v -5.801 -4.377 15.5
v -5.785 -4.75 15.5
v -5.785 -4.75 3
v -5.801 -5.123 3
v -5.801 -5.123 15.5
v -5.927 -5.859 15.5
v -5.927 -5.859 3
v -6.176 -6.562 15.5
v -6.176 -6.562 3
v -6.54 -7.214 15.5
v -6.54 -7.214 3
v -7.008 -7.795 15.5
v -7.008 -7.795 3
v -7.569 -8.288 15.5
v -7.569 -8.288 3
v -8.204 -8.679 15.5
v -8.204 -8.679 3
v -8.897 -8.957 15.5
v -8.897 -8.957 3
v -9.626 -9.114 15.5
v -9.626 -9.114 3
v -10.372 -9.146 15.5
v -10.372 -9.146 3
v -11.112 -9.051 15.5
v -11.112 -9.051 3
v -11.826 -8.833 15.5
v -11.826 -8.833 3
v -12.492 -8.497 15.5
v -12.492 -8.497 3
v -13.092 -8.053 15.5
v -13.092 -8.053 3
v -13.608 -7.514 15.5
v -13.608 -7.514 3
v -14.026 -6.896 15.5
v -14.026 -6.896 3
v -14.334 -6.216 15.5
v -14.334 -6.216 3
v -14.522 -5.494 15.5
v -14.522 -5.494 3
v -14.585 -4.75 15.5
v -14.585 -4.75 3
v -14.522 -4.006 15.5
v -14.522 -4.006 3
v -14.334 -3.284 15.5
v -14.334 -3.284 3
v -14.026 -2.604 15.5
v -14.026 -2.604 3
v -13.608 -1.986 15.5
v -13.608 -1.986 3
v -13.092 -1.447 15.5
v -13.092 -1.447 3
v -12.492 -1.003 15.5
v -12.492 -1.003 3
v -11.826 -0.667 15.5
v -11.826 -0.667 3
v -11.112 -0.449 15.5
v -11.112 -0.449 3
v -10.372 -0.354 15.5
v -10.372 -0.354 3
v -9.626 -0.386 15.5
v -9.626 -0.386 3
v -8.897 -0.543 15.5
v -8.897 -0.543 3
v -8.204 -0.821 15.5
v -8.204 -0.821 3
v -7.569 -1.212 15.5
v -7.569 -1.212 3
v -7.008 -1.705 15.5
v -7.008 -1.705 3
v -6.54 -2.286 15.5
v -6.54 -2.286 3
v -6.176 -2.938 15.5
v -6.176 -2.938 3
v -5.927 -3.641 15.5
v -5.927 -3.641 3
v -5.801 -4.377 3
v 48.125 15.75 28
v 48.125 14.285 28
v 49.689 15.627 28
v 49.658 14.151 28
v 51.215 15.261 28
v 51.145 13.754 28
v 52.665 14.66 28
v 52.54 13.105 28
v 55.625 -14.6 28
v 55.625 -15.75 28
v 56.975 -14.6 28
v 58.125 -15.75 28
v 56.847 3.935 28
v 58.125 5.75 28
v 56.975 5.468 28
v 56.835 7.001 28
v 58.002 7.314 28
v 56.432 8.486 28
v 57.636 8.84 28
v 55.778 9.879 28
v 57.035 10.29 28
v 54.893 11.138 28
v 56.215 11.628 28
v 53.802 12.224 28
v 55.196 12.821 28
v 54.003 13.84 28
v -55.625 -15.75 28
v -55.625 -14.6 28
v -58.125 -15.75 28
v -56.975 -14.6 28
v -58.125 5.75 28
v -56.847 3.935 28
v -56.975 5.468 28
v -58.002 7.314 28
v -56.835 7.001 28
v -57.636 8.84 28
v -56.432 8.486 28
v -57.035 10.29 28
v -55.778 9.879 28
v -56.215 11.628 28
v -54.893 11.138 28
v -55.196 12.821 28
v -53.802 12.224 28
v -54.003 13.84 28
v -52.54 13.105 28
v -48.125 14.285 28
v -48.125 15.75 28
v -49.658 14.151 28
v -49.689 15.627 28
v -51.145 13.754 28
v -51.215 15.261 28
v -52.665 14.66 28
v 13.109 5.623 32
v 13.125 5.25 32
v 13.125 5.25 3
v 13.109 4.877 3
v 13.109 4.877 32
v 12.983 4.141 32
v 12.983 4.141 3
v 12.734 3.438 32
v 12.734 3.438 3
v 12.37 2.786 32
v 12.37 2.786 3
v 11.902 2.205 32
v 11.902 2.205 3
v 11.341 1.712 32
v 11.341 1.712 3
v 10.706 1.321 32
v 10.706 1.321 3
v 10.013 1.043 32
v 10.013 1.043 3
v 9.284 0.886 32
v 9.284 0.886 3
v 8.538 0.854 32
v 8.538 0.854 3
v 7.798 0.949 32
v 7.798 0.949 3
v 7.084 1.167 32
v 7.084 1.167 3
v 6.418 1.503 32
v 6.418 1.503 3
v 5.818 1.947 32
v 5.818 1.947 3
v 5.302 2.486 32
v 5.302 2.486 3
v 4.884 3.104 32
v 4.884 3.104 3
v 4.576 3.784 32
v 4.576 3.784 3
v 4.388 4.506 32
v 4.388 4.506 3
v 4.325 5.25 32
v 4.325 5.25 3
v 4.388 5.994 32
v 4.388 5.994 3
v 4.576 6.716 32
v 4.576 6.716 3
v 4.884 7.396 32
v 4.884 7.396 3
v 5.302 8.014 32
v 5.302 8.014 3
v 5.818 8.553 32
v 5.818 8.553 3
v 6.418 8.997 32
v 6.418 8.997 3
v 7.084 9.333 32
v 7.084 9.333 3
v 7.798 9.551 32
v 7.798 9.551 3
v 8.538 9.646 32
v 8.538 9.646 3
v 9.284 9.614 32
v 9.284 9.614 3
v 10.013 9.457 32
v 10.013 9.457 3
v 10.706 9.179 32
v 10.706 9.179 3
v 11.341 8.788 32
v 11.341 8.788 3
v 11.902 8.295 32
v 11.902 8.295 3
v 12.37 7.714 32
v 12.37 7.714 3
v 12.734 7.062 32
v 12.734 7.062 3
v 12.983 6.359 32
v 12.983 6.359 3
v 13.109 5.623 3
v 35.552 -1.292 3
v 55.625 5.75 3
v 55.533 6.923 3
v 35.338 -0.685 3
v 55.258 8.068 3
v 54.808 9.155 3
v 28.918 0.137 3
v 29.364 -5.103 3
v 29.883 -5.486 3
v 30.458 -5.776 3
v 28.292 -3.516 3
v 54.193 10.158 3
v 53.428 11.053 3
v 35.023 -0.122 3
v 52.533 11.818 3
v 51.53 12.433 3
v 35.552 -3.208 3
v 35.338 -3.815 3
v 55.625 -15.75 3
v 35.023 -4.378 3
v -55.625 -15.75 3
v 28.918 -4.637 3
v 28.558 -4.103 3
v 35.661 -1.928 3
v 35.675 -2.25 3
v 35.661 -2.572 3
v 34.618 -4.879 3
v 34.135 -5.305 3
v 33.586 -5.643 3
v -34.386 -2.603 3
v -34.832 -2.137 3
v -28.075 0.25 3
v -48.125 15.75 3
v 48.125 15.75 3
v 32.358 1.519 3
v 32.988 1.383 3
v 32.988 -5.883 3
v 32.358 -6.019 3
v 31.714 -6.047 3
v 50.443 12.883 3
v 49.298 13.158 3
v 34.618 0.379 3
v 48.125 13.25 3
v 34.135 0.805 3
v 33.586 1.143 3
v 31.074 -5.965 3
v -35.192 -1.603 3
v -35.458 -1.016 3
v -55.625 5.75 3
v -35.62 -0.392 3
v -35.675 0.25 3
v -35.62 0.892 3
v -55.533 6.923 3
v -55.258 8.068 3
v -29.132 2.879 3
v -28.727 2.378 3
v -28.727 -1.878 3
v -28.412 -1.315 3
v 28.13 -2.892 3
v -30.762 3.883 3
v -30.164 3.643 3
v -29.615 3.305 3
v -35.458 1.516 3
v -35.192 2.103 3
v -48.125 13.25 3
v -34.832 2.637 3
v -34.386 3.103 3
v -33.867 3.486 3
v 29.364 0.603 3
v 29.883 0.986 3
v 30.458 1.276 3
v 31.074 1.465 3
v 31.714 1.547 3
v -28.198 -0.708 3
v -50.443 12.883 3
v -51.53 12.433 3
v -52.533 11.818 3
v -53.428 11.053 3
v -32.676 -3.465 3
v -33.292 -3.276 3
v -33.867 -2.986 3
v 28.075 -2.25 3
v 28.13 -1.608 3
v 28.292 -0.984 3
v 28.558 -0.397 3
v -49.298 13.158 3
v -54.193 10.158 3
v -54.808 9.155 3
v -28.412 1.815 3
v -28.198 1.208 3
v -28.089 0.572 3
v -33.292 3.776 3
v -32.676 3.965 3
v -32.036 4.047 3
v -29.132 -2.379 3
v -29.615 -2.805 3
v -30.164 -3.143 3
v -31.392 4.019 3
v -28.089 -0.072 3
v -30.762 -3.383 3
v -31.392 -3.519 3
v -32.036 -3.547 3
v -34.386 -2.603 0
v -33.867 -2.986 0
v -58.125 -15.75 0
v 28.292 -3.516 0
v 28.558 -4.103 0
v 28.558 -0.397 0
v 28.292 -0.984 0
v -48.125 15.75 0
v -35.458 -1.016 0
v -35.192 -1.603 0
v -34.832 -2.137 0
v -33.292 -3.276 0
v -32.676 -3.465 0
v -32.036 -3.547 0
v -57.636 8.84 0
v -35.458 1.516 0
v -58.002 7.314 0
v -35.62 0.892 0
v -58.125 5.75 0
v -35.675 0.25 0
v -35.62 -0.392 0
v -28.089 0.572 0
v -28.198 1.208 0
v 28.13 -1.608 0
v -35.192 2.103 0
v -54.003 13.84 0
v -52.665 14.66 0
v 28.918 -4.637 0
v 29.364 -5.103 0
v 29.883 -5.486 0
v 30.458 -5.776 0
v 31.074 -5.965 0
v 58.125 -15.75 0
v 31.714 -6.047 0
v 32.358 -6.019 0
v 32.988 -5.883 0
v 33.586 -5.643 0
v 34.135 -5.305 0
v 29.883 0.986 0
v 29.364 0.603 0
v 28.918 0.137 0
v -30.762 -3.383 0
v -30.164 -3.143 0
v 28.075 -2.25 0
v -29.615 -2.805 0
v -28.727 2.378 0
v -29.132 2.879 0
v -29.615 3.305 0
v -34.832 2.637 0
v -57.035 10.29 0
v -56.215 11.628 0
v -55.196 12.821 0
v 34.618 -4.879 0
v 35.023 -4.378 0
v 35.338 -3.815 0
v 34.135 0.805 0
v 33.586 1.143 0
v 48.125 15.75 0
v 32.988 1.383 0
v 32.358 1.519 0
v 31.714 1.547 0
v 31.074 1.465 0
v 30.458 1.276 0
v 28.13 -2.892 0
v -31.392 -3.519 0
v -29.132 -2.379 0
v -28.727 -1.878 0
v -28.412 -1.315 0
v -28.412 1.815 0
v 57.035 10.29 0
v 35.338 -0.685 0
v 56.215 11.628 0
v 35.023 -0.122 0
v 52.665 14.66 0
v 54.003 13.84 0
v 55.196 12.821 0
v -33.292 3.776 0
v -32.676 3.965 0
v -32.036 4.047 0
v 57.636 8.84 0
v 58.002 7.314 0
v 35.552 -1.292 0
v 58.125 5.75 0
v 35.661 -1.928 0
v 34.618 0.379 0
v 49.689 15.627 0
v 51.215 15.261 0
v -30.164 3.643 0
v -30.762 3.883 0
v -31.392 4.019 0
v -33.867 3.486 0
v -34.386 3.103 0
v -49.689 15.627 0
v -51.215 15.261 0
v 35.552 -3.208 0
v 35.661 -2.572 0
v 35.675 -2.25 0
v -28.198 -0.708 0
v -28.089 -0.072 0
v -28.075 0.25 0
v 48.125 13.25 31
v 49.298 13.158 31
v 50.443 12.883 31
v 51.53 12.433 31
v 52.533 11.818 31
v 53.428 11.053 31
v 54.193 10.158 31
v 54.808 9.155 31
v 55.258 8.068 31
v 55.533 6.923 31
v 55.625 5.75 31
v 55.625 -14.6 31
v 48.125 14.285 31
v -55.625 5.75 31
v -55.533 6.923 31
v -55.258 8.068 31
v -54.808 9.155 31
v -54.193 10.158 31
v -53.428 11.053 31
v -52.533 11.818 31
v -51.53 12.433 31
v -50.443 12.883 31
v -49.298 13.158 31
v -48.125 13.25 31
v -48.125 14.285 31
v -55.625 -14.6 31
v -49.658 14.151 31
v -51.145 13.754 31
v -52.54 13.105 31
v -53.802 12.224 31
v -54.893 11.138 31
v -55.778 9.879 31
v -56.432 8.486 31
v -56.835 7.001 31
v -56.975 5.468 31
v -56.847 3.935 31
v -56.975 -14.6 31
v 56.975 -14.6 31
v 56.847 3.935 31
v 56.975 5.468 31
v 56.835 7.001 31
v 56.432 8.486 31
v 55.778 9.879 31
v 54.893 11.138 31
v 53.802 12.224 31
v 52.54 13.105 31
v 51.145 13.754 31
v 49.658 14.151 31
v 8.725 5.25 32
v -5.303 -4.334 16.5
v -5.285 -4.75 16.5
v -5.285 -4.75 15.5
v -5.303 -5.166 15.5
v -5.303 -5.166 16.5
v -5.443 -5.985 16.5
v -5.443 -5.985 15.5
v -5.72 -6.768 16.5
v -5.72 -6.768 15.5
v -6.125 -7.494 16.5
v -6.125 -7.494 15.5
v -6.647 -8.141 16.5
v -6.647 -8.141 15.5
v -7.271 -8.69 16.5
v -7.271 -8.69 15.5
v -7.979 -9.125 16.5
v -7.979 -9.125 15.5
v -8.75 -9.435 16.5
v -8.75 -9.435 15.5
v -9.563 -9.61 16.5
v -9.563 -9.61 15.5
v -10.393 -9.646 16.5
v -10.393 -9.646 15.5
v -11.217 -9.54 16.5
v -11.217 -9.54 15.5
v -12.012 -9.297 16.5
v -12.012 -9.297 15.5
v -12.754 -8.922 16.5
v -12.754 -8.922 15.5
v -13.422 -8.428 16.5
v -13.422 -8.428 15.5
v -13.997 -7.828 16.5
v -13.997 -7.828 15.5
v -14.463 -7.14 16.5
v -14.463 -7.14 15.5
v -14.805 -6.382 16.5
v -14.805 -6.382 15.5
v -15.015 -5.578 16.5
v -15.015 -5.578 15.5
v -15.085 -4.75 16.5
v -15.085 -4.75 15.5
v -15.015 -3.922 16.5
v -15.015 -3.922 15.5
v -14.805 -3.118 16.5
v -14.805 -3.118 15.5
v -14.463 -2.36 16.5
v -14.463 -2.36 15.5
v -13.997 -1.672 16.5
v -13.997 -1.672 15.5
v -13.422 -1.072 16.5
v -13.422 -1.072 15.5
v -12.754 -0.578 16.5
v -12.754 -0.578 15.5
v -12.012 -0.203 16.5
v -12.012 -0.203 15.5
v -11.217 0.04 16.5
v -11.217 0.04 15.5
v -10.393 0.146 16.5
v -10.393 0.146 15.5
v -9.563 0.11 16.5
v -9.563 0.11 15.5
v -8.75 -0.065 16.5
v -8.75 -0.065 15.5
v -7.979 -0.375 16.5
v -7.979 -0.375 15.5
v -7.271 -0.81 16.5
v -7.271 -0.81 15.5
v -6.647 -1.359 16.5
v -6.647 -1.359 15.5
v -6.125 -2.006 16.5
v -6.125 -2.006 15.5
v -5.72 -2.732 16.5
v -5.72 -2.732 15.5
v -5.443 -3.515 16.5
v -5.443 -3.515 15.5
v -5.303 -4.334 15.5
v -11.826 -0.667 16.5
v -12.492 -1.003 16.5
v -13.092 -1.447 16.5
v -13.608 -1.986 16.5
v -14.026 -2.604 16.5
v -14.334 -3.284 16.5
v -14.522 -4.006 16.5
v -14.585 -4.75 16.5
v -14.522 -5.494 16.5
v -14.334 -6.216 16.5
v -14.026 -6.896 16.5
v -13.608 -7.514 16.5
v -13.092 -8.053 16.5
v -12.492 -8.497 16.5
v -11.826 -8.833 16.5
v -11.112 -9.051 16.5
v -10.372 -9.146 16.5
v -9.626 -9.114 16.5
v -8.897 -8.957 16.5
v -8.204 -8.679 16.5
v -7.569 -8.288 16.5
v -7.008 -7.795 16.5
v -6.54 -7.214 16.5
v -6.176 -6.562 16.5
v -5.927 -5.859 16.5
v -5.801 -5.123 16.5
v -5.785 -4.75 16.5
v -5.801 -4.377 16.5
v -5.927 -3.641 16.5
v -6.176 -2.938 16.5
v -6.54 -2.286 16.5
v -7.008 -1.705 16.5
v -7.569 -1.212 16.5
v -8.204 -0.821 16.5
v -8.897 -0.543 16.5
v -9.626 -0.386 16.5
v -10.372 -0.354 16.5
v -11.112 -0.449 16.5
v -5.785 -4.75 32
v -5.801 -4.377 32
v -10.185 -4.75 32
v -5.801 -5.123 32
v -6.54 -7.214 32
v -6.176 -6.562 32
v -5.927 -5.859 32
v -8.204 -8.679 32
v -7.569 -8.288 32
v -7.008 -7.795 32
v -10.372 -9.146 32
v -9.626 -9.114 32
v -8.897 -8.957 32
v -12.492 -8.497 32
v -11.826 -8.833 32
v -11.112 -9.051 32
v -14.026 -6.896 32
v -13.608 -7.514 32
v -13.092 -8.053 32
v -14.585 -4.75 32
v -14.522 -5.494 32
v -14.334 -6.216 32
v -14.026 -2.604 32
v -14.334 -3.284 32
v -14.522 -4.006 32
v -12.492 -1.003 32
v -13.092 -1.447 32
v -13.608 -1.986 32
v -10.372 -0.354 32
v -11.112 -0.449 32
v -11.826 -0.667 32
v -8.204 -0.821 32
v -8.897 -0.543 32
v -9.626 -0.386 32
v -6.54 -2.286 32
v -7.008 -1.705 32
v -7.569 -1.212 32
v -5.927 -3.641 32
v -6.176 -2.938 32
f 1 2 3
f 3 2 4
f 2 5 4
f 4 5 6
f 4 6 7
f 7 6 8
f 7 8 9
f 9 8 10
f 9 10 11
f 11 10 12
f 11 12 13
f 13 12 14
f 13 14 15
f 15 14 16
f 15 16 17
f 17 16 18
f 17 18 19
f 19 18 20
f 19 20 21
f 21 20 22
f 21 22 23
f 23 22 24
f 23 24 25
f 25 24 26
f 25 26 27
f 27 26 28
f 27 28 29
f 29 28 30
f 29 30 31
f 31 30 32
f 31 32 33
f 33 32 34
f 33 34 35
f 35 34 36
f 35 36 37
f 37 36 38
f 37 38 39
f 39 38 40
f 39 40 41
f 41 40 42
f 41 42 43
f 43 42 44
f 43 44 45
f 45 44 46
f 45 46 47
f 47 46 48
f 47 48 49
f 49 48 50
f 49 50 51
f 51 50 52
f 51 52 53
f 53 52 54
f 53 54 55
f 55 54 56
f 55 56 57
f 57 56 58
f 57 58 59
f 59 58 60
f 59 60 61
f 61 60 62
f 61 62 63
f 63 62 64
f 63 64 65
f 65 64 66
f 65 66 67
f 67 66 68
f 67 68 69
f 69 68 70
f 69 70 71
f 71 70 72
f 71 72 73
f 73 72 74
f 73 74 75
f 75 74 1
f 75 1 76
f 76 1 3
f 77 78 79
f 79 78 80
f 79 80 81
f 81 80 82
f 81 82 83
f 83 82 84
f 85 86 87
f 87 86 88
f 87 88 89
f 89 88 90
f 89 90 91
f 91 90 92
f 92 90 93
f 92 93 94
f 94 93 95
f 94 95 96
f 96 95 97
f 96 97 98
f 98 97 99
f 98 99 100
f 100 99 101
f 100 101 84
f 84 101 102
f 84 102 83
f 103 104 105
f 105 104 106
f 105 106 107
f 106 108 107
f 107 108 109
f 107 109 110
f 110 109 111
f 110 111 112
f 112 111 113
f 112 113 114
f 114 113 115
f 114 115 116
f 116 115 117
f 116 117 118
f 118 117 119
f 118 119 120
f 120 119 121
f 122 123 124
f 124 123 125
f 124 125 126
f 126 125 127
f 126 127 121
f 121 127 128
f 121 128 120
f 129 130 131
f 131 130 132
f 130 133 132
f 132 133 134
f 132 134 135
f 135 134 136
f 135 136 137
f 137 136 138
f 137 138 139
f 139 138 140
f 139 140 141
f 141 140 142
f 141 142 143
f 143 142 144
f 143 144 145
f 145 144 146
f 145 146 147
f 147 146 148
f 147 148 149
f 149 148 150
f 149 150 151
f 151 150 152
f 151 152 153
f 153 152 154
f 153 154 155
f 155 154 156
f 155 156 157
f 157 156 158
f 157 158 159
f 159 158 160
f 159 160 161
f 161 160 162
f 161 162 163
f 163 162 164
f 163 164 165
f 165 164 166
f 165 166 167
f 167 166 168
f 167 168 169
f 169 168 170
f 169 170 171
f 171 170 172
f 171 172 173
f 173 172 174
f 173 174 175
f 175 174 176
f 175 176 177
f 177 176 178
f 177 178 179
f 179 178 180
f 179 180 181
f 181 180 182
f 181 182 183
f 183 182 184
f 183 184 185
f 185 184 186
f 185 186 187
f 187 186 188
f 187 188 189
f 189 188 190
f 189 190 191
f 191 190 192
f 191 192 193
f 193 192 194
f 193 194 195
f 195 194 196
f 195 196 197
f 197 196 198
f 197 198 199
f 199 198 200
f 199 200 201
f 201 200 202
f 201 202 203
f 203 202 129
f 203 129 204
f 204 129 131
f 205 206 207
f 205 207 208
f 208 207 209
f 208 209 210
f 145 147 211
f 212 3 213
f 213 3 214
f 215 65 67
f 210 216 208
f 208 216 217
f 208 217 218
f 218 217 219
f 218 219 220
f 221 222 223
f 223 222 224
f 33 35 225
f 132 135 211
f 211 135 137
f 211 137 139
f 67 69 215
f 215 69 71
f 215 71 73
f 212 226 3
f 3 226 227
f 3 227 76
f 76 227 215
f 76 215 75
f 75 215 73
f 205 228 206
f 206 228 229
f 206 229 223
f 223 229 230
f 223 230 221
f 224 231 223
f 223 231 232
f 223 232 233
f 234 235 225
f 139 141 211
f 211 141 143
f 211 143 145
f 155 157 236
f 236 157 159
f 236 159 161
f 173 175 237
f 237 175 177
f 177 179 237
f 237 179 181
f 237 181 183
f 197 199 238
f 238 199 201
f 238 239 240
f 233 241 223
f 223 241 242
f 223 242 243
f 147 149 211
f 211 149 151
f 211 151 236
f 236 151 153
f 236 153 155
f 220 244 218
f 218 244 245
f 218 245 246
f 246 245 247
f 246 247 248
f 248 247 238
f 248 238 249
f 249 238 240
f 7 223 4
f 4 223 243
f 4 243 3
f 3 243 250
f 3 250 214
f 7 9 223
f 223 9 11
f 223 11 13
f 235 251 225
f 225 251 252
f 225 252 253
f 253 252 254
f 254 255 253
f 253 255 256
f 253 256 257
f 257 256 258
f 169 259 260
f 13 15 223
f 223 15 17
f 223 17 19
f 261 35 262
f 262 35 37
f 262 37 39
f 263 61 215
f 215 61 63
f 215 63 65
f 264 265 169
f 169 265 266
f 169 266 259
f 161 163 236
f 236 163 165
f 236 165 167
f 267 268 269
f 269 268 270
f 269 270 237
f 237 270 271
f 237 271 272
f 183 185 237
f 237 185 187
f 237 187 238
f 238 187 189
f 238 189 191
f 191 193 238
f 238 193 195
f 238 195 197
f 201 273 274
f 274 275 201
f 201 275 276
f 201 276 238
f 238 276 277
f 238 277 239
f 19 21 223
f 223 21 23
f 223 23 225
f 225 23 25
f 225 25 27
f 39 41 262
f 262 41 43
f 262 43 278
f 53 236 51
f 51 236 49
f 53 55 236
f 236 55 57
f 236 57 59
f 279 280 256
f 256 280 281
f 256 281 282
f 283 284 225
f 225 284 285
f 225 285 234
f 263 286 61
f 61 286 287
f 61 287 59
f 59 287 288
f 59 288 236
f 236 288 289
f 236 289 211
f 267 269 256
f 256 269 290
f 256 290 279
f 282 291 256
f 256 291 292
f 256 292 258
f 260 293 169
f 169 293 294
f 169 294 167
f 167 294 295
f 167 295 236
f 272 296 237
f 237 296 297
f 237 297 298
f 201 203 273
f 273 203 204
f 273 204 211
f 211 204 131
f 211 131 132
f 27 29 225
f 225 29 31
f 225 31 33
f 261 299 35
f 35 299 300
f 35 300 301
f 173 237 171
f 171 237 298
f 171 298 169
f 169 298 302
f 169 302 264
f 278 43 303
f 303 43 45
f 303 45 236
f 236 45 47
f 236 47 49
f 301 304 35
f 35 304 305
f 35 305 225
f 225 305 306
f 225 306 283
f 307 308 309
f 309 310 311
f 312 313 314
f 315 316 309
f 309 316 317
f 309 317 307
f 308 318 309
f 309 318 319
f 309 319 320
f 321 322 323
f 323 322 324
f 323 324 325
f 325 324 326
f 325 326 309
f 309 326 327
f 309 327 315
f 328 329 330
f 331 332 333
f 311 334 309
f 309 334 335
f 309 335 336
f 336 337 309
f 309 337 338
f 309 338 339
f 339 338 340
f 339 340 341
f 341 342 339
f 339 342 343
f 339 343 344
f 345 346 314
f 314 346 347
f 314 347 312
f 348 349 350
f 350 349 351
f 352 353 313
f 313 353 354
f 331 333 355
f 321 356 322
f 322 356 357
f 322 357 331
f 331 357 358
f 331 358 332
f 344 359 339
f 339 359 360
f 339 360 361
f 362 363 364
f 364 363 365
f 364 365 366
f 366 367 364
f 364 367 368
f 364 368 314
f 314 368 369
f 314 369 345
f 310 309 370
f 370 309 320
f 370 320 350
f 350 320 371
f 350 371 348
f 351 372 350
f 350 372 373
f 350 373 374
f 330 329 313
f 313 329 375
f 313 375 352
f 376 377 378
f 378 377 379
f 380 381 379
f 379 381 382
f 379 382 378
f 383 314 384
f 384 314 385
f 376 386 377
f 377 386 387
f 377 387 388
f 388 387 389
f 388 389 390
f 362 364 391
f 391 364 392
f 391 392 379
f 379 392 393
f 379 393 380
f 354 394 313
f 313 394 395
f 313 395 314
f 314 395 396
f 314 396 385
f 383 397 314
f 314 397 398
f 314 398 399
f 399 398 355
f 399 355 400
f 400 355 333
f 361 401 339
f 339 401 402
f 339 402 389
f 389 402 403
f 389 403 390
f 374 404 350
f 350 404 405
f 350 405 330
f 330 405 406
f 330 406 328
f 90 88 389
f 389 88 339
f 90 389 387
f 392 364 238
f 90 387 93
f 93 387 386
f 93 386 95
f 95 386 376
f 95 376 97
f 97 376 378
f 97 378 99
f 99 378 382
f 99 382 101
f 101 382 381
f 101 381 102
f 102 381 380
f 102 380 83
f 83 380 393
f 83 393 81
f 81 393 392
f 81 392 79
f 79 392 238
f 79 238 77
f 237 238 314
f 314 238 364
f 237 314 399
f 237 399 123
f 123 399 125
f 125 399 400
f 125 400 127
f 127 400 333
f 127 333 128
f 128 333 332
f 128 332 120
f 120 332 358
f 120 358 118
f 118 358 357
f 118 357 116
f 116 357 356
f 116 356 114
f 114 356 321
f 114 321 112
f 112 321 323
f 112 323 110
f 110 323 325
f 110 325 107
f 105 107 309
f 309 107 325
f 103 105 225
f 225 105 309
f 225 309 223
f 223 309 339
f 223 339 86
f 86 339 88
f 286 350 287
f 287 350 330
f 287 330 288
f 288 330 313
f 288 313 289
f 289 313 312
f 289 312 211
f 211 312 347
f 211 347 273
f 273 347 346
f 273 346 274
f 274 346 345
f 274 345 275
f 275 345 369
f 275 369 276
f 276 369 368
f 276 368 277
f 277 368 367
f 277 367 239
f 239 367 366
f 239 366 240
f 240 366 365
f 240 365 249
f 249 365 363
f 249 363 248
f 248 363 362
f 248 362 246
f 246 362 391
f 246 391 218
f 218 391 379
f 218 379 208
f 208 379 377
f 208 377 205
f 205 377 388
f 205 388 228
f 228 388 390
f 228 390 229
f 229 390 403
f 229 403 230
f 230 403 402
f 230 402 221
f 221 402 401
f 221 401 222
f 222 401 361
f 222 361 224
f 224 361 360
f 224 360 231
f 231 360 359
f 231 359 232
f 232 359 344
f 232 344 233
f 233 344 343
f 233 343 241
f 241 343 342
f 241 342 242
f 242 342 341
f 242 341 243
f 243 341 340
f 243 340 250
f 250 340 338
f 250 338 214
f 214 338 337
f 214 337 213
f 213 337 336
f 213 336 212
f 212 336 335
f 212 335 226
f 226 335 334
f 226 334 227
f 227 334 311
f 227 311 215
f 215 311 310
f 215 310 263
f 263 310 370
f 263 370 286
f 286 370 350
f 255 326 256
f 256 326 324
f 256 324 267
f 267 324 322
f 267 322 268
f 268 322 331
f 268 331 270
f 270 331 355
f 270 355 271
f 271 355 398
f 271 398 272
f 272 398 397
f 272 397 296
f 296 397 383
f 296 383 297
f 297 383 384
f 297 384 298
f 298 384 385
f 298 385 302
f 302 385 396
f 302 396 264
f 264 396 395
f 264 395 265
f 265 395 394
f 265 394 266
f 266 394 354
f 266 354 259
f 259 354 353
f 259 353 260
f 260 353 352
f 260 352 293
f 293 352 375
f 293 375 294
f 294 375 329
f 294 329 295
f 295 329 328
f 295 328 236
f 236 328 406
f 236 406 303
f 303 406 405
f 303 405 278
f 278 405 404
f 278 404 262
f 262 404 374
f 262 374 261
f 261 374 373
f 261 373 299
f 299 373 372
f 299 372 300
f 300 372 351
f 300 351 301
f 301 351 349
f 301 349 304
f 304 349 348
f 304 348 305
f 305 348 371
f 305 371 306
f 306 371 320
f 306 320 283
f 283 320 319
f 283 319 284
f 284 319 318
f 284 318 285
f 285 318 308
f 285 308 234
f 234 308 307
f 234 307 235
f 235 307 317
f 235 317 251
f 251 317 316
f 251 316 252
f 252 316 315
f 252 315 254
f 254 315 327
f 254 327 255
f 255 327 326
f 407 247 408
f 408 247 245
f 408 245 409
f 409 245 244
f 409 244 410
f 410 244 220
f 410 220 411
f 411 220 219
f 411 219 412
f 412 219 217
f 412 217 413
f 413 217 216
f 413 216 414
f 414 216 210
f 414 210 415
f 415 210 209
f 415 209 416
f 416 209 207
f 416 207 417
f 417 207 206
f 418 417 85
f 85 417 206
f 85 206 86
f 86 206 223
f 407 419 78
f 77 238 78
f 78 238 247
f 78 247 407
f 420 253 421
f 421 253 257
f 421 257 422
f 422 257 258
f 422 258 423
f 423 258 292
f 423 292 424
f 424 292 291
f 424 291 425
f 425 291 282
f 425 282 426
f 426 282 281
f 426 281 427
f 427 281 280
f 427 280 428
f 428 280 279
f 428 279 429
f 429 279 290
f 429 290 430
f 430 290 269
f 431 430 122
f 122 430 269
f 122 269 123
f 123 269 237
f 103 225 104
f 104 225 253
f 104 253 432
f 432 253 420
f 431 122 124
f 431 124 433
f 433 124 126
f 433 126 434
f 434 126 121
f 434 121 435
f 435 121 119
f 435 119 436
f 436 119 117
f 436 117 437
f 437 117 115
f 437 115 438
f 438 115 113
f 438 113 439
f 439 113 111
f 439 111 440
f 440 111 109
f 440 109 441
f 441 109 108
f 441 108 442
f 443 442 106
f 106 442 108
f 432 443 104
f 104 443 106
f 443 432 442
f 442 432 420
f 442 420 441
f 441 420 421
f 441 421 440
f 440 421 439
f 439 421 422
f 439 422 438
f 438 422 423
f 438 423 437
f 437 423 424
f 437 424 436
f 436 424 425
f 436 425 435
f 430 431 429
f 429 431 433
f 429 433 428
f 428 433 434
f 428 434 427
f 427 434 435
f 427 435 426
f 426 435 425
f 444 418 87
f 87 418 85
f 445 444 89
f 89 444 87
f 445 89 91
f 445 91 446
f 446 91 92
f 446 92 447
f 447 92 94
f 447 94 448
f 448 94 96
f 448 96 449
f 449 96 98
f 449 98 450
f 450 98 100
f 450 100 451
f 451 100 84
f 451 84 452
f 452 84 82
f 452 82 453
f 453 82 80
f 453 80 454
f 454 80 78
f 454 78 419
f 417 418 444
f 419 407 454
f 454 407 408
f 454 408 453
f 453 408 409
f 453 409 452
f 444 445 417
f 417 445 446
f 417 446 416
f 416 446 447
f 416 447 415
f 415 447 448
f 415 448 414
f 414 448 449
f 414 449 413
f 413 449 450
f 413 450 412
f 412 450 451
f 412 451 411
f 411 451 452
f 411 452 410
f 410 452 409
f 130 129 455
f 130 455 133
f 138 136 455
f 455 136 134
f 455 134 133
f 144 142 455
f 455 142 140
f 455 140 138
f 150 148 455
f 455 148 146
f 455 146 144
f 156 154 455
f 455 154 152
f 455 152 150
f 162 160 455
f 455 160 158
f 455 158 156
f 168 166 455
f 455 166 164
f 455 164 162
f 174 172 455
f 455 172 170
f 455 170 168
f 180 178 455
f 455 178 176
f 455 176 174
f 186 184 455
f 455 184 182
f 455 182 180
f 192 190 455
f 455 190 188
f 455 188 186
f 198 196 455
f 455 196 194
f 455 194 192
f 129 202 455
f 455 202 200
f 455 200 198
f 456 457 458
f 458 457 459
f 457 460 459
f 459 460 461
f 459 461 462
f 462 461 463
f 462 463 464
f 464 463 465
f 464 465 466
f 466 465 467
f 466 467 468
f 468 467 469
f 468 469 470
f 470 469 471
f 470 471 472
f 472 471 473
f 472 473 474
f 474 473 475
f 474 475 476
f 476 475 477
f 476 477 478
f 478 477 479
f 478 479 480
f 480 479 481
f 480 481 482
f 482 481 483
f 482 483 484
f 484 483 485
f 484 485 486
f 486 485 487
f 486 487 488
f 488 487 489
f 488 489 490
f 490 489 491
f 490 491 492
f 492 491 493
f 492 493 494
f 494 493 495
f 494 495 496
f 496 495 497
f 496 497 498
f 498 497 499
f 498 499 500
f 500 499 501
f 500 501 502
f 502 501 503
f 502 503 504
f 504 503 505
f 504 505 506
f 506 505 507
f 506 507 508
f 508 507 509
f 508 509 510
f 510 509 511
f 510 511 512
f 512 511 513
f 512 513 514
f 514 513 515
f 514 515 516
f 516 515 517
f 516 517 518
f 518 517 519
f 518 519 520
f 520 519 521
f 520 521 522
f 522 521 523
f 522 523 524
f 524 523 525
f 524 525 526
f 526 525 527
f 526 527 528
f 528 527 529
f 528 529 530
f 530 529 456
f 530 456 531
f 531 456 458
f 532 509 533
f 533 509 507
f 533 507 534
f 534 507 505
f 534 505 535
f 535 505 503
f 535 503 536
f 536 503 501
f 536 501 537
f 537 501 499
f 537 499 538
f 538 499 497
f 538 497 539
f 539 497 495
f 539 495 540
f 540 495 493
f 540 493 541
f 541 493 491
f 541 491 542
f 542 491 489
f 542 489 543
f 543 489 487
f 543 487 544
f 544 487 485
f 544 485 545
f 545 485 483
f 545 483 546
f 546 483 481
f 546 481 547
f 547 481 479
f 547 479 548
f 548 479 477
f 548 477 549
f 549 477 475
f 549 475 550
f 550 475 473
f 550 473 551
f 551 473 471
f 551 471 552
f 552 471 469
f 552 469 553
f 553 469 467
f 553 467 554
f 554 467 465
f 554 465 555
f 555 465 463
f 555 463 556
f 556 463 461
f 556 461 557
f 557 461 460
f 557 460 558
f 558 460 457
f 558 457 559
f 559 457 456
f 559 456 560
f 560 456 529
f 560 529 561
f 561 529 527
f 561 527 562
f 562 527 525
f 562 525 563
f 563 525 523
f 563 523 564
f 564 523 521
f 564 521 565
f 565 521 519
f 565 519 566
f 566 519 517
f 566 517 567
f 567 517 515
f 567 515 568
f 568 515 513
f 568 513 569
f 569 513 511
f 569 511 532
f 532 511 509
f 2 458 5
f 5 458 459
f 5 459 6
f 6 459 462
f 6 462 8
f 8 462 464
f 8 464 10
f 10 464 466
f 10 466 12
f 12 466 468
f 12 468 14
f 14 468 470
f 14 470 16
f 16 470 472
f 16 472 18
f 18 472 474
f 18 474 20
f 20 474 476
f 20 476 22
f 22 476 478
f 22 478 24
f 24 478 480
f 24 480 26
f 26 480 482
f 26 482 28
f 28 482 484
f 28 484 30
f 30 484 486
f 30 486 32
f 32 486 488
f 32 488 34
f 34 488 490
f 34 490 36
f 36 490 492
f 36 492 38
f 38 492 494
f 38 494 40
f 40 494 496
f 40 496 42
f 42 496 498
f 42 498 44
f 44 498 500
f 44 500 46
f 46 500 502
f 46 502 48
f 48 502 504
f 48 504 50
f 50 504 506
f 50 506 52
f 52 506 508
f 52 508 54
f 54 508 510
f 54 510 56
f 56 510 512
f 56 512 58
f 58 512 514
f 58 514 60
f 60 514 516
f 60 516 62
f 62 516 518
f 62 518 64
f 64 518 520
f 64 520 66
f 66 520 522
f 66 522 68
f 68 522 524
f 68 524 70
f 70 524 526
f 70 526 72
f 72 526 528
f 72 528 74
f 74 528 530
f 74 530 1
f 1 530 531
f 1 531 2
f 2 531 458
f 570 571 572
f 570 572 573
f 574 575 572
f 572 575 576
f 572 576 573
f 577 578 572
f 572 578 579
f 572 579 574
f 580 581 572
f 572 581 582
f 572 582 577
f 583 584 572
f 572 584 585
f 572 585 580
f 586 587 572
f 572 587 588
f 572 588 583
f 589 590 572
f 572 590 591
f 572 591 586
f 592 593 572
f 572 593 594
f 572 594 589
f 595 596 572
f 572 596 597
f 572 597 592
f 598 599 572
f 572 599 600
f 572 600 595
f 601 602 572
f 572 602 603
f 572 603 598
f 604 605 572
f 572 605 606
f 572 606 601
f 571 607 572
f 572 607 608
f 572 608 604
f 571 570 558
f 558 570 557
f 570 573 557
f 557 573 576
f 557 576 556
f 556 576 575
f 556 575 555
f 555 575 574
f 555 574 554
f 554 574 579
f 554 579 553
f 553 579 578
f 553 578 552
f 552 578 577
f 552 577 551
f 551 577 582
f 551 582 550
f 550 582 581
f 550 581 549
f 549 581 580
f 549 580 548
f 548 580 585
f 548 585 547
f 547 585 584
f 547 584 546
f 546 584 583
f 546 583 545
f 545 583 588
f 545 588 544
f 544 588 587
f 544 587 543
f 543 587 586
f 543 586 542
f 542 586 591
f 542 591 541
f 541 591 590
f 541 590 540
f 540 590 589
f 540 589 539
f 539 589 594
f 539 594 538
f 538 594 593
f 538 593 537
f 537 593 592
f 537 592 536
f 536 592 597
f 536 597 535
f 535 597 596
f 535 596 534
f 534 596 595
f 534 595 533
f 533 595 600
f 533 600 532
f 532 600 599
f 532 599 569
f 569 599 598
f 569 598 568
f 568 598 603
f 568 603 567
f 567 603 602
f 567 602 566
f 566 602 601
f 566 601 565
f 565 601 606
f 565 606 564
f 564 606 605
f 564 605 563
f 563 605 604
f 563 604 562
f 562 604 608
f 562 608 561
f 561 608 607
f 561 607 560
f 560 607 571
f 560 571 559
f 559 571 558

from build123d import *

# Parameters (mm, degrees)
SKETCH1_R           = 3.8
BOSS_EXTRUDE2_DEPTH = 3
SKETCH2_R           = 4.4
BOSS_EXTRUDE3_DEPTH = 25
CUT_EXTRUDE3_START  = -1
SKETCH10_R          = 4.4
CUT_EXTRUDE3_DEPTH  = 1
BOSS_EXTRUDE5_DEPTH = 3
SKETCH12_R          = 4.4
BOSS_EXTRUDE6_DEPTH = 5
SKETCH14_R          = 4.9
BOSS_EXTRUDE7_DEPTH = 1


with BuildPart() as part:
    # Sketch1 → Boss-Extrude2 (new body)
    with BuildSketch(Plane.XY):
        with BuildLine():
            Line((-48.125, 15.75), (48.125, 15.75))
            ThreePointArc((48.125, 15.75), (55.196067812, 12.821067812), (58.125, 5.75))
            Line((58.125, 5.75), (58.125, -15.75))
            Line((58.125, -15.75), (-58.125, -15.75))
            Line((-58.125, -15.75), (-58.125, 5.75))
            ThreePointArc((-58.125, 5.75), (-55.196067812, 12.821067812), (-48.125, 15.75))
        make_face()
        with Locations((31.875, -2.25)):
            Circle(SKETCH1_R, mode=Mode.SUBTRACT)
        with Locations((-31.875, 0.25)):
            Circle(SKETCH1_R, mode=Mode.SUBTRACT)
    extrude(amount=BOSS_EXTRUDE2_DEPTH)

    # Sketch2 → Boss-Extrude3 (add)
    with BuildSketch(Plane.XY.offset(3)):
        with Locations((8.725, 5.25)):
            Circle(SKETCH2_R)
        with Locations((-10.185, -4.75)):
            Circle(SKETCH2_R)
        with BuildLine():
            Line((55.625, 5.75), (55.625, -15.75))
            Line((55.625, -15.75), (58.125, -15.75))
            Line((58.125, -15.75), (58.125, 5.25))
            Line((58.125, 5.25), (58.125, 5.75))
            ThreePointArc((58.125, 5.75), (55.196067812, 12.821067812), (48.125, 15.75))
            Line((48.125, 15.75), (48.125, 13.25))
            ThreePointArc((48.125, 13.25), (53.428300859, 11.053300859), (55.625, 5.75))
        make_face()
        with BuildLine():
            Line((-58.125, -15.75), (-55.625, -15.75))
            Line((-55.625, -15.75), (-55.625, 5.75))
            ThreePointArc((-55.625, 5.75), (-53.428300859, 11.053300859), (-48.125, 13.25))
            Line((-48.125, 13.25), (-48.125, 15.75))
            ThreePointArc((-48.125, 15.75), (-55.196067812, 12.821067812), (-58.125, 5.75))
            Line((-58.125, 5.75), (-58.125, 5.25))
            Line((-58.125, 5.25), (-58.125, -15.75))
        make_face()
    extrude(amount=BOSS_EXTRUDE3_DEPTH)

    # Sketch10 → Cut-Extrude3 (cut)
    with BuildSketch(Plane.XY.offset(28).offset(CUT_EXTRUDE3_START)):
        with Locations((8.725, 5.25)):
            Circle(SKETCH10_R)
        with Locations((-10.185, -4.75)):
            Circle(SKETCH10_R)
    extrude(amount=CUT_EXTRUDE3_DEPTH, mode=Mode.SUBTRACT)

    # Sketch5 → Boss-Extrude5 (add)
    with BuildSketch(Plane.XY.offset(28)):
        with BuildLine():
            Line((-56.84687889, 3.934747007), (-56.975, -14.6))
            Line((-56.975, -14.6), (-55.625, -14.6))
            Line((-55.625, -14.6), (-55.625, 5.75))
            ThreePointArc((-55.625, 5.75), (-53.428300859, 11.053300859), (-48.125, 13.25))
            Line((-48.125, 13.25), (-48.125, 14.285189819))
            ThreePointArc((-48.125, 14.285189819), (-54.892622141, 11.137977782), (-56.84687889, 3.934747007))
        make_face()
        with BuildLine():
            Line((55.625, -14.6), (55.625, 5.75))
            ThreePointArc((55.625, 5.75), (53.428300859, 11.053300859), (48.125, 13.25))
            Line((48.125, 13.25), (48.125, 14.285189819))
            ThreePointArc((48.125, 14.285189819), (54.892622141, 11.137977782), (56.84687889, 3.934747007))
            Line((56.84687889, 3.934747007), (56.975, -14.6))
            Line((56.975, -14.6), (55.625, -14.6))
        make_face()
    extrude(amount=BOSS_EXTRUDE5_DEPTH)

    # Sketch12 → Boss-Extrude6 (add)
    with BuildSketch(Plane.XY.offset(27)):
        with Locations((-10.185, -4.75)):
            Circle(SKETCH12_R)
        with Locations((8.725, 5.25)):
            Circle(SKETCH12_R)
    extrude(amount=BOSS_EXTRUDE6_DEPTH)

    # Sketch14 → Boss-Extrude7 (add)
    with BuildSketch(Plane.XY.offset(15.5)):
        with Locations((-10.185, -4.75)):
            Circle(SKETCH14_R)
    extrude(amount=BOSS_EXTRUDE7_DEPTH)


solid = part.part
